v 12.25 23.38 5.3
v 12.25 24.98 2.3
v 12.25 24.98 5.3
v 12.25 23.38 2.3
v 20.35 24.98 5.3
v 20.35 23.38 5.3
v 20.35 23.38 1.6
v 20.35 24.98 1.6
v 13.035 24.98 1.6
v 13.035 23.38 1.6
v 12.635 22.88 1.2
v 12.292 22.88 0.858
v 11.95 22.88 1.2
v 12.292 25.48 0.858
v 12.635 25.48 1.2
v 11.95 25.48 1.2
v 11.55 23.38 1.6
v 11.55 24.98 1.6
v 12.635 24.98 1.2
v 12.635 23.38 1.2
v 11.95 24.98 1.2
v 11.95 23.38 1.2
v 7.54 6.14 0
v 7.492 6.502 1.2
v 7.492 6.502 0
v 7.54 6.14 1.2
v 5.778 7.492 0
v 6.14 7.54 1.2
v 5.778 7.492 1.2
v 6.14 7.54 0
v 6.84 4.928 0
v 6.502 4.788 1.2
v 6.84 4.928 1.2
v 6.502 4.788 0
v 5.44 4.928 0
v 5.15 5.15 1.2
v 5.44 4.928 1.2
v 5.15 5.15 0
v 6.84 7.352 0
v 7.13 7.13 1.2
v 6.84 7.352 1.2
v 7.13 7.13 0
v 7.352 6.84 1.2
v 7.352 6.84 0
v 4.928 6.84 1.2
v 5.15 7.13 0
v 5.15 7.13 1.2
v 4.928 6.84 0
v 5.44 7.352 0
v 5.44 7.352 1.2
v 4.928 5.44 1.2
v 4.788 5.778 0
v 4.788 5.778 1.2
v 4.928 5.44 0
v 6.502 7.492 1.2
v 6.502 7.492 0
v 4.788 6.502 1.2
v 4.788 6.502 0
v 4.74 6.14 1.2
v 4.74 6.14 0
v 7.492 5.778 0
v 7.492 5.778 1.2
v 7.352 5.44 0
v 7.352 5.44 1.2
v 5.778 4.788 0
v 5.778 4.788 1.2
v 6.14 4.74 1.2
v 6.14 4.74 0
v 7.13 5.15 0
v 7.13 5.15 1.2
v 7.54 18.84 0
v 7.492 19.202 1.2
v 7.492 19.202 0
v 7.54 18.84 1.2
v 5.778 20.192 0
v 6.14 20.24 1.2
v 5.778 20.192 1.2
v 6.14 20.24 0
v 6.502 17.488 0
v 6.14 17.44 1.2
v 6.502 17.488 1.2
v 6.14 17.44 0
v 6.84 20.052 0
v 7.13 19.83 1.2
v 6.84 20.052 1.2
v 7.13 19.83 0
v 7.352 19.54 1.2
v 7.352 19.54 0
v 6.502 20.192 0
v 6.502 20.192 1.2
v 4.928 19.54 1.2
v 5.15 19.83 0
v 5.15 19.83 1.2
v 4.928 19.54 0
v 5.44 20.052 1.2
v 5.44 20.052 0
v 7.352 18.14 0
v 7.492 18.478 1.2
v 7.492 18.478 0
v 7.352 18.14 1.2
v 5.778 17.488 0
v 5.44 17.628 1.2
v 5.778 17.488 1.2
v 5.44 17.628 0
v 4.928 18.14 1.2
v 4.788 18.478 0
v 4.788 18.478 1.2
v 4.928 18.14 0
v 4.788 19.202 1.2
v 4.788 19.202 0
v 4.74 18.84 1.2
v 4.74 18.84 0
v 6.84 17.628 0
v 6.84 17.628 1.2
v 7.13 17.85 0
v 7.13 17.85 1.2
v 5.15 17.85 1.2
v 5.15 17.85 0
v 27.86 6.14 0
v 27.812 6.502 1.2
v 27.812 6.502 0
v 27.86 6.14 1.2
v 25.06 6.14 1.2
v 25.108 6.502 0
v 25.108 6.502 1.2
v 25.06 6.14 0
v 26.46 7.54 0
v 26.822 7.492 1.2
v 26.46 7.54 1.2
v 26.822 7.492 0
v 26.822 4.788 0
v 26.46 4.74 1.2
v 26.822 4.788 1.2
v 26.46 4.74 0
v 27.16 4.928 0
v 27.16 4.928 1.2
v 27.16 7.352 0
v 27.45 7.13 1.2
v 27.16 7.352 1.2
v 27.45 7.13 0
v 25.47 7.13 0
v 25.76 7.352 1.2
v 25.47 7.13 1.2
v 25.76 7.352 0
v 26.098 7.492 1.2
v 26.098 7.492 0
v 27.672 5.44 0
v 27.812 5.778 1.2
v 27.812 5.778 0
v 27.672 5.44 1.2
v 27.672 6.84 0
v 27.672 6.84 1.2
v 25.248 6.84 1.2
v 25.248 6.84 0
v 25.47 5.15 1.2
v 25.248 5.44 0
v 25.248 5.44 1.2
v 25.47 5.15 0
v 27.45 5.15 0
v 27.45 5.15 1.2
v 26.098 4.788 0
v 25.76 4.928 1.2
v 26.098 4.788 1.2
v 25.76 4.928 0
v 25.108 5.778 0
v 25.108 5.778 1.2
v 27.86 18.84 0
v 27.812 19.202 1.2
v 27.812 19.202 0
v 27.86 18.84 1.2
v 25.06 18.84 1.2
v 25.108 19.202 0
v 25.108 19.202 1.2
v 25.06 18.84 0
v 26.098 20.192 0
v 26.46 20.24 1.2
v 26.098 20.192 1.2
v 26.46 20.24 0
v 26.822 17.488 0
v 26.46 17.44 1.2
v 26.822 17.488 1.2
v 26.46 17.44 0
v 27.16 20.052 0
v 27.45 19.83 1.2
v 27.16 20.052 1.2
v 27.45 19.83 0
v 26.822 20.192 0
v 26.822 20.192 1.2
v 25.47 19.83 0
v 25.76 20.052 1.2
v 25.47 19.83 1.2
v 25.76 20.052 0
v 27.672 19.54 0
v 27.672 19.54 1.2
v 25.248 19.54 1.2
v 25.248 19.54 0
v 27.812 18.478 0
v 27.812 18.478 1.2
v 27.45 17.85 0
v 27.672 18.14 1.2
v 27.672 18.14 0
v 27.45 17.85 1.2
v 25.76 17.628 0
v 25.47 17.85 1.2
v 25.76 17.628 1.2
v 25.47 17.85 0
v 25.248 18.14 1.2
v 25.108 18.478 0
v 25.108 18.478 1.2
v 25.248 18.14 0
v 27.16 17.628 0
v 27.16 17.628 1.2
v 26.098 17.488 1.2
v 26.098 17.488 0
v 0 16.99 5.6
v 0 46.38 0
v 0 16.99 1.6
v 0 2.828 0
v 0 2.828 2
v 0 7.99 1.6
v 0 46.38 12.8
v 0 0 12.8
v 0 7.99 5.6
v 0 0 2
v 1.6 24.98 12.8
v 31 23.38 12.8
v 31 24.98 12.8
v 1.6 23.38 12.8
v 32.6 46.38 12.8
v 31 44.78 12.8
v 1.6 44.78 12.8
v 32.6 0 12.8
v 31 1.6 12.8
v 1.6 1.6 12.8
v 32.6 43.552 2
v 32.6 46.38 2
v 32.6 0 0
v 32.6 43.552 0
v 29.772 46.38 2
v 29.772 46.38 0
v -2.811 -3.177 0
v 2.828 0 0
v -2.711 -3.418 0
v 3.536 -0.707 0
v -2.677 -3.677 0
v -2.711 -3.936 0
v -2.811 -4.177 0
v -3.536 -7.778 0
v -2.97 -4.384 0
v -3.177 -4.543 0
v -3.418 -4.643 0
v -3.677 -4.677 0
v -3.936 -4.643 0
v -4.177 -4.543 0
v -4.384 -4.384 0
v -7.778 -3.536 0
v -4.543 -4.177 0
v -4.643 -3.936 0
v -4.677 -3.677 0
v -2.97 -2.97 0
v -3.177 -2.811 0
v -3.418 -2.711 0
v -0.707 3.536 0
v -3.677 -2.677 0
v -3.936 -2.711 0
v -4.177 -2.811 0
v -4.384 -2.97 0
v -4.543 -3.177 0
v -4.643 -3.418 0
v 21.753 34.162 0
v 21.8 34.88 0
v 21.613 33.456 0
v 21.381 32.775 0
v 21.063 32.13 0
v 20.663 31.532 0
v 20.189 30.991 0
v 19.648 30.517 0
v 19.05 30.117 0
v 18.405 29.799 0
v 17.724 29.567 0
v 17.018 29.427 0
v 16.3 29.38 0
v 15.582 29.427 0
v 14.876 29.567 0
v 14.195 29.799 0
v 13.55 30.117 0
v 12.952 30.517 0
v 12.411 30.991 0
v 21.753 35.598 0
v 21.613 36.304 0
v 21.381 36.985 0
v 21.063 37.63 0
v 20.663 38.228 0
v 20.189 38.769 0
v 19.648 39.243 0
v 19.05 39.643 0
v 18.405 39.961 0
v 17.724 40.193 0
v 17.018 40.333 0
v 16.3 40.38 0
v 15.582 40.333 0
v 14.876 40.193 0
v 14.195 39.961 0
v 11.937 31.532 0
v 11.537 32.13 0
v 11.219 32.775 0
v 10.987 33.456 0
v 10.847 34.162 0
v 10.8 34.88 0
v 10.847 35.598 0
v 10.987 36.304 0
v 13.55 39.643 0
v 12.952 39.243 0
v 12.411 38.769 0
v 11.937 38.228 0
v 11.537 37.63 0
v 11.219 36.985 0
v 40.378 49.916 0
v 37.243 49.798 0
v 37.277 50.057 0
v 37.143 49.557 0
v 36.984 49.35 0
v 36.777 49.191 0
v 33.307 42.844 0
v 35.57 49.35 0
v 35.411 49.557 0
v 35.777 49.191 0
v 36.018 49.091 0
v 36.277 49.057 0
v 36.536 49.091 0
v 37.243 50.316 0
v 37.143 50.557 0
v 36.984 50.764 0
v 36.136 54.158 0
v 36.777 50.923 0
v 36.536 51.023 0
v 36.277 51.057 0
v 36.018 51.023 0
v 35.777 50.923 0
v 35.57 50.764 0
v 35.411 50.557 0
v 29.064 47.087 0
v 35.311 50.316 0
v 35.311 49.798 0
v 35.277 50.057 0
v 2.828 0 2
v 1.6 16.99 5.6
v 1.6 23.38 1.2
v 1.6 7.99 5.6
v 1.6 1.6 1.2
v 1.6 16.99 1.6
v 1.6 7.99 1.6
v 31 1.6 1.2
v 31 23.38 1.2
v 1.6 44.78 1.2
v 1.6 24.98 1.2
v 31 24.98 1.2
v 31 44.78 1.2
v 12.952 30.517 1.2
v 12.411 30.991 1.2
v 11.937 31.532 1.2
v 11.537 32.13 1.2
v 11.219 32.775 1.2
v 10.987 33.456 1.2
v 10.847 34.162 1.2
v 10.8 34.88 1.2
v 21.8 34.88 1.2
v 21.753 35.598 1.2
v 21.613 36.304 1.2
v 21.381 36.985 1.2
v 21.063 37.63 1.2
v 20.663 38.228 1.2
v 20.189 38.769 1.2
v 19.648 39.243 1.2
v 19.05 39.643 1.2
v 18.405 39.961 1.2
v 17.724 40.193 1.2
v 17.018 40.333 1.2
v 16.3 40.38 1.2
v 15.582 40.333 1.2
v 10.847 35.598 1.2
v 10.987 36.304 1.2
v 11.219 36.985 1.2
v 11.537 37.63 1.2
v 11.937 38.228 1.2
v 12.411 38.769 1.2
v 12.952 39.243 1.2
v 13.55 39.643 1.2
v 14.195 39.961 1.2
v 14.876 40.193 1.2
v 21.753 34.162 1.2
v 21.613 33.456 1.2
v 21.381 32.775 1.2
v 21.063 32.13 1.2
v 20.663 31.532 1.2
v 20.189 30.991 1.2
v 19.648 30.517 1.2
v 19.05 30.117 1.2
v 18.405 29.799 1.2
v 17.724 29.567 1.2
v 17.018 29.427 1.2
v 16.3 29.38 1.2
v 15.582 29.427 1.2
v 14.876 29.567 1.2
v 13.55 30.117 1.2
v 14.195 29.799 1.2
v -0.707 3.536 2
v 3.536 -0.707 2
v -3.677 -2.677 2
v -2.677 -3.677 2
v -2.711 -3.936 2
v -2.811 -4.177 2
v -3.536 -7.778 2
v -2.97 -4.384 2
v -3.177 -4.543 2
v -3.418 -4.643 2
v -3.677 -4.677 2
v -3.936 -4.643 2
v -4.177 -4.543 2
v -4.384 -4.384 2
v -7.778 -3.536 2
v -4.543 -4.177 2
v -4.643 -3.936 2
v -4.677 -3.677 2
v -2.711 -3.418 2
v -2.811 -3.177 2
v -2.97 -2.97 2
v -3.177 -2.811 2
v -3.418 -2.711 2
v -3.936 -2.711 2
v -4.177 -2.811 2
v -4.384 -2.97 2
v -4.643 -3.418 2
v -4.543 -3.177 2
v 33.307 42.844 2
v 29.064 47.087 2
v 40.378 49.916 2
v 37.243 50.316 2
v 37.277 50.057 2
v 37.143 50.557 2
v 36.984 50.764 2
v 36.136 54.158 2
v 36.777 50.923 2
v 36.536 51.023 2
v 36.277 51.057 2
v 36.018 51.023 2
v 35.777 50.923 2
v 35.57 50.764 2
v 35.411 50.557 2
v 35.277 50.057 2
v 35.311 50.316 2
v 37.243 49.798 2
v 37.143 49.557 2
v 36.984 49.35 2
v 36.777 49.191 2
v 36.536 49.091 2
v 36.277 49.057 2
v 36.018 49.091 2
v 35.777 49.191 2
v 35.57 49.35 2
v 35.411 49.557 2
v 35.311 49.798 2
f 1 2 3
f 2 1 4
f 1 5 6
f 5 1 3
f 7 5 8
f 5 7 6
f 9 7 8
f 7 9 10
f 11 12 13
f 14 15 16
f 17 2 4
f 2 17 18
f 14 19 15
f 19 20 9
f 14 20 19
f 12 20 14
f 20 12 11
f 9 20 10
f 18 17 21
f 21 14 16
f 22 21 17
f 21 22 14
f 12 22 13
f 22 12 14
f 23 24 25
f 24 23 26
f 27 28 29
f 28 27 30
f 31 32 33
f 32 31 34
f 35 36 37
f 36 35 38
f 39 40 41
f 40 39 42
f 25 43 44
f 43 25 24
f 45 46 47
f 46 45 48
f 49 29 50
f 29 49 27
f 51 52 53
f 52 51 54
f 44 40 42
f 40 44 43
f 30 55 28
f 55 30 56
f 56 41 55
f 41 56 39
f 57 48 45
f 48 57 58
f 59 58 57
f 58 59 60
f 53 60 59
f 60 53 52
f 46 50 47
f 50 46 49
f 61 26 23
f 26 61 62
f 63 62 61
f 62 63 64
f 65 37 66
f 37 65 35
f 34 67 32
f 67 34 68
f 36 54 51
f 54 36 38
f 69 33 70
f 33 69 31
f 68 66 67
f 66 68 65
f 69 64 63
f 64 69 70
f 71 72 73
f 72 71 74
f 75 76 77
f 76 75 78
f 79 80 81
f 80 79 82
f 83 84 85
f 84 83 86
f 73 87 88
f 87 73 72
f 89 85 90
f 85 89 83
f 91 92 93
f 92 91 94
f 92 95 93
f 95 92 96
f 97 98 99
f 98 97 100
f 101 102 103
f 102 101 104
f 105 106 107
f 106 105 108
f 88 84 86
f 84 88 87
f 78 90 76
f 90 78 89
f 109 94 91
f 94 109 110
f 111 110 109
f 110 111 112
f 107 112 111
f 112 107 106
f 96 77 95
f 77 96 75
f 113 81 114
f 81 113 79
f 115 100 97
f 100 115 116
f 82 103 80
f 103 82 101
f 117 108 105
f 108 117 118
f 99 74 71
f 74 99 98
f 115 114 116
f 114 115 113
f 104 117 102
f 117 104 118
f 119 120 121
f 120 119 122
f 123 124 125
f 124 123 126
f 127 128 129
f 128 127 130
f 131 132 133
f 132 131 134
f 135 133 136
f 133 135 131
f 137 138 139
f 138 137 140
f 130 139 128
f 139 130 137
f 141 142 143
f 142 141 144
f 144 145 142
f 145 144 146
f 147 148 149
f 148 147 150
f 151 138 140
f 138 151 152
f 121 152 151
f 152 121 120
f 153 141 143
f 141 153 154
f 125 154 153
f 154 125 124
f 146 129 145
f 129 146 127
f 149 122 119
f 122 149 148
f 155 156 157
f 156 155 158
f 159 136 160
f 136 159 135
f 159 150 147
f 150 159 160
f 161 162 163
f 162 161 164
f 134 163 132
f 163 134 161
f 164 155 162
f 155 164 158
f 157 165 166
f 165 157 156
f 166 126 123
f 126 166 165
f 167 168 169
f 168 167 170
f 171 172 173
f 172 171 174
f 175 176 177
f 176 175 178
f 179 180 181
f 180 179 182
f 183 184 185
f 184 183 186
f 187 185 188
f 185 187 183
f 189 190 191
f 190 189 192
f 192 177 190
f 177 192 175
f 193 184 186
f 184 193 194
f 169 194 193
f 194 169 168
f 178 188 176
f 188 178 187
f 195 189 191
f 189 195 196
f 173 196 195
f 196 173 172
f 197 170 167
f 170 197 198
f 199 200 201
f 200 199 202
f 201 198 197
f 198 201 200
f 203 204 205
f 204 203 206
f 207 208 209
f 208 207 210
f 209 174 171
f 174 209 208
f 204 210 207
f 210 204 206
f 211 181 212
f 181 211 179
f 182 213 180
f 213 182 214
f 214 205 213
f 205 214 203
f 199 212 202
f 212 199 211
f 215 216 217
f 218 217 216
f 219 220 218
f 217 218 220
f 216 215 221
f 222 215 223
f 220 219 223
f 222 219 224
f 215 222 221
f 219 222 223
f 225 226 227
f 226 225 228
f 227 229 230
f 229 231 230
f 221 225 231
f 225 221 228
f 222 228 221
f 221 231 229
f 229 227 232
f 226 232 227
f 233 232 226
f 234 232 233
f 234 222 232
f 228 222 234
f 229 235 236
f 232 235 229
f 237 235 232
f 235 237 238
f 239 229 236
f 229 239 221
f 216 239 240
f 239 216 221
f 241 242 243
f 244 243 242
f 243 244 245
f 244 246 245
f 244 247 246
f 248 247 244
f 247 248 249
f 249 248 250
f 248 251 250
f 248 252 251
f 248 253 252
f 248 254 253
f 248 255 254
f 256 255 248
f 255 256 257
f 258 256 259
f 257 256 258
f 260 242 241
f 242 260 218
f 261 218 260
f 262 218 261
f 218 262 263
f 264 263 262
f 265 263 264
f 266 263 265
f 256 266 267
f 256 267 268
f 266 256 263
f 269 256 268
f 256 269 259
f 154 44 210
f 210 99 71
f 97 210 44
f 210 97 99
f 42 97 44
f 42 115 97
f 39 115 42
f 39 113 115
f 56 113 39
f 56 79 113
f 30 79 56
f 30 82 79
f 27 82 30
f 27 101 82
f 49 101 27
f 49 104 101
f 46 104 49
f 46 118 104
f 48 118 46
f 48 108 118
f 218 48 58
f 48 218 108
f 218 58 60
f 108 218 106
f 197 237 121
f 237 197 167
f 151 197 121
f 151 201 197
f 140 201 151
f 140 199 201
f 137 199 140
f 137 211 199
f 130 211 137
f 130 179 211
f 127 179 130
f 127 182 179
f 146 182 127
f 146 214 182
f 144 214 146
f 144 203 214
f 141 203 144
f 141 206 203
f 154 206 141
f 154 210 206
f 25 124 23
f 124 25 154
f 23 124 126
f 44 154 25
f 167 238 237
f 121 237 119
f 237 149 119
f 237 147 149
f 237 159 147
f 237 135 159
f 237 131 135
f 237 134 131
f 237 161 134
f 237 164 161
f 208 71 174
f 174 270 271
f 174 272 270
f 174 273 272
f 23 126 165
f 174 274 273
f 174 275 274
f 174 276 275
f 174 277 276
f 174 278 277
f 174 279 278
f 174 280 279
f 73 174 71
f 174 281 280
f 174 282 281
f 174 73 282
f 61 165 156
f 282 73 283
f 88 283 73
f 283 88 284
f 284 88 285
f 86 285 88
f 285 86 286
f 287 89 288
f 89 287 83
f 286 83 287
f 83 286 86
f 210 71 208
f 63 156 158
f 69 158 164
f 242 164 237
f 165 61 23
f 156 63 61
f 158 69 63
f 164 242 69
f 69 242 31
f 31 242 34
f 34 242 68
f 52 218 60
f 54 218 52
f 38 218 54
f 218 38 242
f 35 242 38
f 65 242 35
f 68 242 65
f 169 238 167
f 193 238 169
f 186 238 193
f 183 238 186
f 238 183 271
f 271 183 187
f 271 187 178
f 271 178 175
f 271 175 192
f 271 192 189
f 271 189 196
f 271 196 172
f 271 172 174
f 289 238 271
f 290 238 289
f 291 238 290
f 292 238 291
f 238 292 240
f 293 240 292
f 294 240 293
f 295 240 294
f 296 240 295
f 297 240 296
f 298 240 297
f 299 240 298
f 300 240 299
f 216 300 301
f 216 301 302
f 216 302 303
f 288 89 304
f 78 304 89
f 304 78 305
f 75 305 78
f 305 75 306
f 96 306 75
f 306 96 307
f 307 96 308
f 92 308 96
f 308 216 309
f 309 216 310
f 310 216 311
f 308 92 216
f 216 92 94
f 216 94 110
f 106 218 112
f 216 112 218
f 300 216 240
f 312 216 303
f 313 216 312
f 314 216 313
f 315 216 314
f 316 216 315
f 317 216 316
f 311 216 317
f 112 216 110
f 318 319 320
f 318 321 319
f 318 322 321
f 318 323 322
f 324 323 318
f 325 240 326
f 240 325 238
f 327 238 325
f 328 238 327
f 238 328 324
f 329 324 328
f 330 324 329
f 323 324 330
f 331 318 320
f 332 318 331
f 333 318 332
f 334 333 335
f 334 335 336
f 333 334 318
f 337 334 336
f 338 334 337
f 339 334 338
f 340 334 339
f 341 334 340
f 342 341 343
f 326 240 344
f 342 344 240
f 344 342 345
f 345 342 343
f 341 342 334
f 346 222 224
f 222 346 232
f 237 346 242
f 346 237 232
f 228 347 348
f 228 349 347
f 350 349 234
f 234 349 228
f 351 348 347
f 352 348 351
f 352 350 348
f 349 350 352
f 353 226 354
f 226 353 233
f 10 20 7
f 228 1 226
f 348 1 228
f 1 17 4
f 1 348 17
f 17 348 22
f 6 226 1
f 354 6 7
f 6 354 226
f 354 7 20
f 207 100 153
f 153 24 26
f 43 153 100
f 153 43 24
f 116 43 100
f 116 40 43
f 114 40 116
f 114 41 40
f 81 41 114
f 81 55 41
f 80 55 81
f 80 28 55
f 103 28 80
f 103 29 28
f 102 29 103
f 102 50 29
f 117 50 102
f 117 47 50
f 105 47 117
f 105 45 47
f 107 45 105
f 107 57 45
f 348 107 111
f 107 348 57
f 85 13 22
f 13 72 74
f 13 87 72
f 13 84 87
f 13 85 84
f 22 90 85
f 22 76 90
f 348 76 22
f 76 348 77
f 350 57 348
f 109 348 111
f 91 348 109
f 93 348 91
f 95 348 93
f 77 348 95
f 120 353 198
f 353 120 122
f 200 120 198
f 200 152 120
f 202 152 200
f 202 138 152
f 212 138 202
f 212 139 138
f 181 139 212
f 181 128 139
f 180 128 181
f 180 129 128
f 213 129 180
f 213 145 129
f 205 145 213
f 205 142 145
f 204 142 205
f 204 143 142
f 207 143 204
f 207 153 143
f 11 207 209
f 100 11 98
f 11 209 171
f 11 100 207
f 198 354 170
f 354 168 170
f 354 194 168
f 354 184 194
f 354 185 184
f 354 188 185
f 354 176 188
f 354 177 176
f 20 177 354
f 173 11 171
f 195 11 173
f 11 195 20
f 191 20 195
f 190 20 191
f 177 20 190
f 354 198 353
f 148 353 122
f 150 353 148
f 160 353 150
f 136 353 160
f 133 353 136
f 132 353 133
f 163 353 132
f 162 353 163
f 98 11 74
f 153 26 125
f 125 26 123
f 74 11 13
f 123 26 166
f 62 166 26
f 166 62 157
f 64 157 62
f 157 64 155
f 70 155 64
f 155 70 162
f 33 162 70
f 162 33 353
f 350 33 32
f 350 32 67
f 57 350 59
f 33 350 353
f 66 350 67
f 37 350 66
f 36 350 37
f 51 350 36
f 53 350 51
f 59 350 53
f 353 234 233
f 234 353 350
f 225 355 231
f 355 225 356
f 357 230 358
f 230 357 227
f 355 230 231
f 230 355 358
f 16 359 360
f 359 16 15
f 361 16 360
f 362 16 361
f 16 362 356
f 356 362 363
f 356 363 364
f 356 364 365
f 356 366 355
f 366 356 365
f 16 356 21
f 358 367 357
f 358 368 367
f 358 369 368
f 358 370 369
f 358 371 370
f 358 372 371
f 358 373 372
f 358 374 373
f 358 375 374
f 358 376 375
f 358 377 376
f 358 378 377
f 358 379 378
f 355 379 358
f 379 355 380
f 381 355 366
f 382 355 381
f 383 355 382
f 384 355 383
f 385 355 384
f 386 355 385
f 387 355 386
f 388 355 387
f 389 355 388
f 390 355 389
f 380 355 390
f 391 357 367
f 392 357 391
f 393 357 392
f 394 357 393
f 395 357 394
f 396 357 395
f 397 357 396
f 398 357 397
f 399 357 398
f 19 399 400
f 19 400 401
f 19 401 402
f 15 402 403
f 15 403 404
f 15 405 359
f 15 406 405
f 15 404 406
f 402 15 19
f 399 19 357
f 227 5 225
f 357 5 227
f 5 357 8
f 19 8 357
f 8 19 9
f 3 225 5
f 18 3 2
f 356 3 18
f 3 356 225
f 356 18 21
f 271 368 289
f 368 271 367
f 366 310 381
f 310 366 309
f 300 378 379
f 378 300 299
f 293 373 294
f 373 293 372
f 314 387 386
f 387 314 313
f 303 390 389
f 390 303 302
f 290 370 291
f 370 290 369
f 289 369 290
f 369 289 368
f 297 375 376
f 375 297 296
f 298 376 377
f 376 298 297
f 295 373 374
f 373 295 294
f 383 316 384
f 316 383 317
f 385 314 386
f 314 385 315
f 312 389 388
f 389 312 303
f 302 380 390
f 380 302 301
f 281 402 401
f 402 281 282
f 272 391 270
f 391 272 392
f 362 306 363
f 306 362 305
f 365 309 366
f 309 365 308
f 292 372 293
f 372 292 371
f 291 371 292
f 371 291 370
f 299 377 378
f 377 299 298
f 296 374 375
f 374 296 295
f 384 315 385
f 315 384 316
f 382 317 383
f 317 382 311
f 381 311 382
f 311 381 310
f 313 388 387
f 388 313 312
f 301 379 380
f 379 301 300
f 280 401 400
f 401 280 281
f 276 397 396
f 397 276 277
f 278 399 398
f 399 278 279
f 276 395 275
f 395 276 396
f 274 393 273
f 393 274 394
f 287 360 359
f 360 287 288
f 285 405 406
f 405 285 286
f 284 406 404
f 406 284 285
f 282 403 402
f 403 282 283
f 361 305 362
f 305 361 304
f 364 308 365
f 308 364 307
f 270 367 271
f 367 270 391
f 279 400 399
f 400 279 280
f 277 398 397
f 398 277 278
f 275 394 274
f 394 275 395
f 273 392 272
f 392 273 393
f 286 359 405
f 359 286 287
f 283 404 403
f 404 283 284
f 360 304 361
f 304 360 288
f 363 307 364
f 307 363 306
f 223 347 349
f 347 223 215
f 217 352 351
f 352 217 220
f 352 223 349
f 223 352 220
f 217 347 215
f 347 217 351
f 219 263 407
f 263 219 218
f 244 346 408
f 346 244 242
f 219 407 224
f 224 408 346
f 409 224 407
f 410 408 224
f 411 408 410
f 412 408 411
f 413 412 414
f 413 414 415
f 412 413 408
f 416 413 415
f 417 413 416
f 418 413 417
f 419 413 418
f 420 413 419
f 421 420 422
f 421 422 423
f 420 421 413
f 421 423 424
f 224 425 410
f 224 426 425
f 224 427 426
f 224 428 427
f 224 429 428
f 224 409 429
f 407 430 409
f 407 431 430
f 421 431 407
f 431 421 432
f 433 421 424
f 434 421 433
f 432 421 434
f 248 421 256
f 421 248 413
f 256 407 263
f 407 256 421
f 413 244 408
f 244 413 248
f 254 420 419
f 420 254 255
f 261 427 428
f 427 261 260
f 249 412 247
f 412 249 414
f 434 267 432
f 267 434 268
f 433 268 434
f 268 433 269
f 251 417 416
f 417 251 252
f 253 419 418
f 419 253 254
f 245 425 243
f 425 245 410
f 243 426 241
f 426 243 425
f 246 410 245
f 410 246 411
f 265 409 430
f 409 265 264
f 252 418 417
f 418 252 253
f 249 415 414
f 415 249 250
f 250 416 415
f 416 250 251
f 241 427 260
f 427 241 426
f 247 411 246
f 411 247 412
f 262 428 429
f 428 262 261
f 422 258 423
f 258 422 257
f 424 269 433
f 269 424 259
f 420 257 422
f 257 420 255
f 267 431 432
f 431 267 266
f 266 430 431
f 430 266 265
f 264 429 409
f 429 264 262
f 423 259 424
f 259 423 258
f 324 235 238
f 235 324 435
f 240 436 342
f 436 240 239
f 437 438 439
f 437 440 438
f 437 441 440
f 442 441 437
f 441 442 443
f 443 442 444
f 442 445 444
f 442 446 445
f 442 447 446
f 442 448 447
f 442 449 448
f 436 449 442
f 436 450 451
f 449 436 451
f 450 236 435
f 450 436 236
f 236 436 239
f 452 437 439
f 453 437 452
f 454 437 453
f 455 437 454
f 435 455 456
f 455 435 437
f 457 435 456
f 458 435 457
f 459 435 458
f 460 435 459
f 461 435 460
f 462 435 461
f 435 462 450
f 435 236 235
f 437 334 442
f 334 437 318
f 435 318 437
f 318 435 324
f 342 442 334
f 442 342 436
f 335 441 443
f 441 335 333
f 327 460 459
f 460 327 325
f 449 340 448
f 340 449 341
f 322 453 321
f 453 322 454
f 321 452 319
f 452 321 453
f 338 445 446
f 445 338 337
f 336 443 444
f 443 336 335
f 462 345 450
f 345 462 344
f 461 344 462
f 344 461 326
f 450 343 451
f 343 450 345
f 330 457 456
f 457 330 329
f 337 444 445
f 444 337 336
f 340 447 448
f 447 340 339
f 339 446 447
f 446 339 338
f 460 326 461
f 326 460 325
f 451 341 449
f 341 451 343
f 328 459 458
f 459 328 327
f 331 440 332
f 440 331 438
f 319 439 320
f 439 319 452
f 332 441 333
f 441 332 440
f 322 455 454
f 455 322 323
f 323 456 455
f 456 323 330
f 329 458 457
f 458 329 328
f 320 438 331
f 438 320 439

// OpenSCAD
// ============================================================
//  Meridian Wrist Array — Satellite Pod v2
//  Rebuilt Aug 2026 | Sean (Whitehorse, YT)
//
//  ** REBUILD NOTICE **
//  The original satellite_pod_v2.scad could not be found on disk.
//  This file was reconstructed from two sources:
//    1. Authored parameter/geometry fragments recovered from past
//       conversation transcripts (marked CONFIRMED below).
//    2. Direct measurement of satellite_pod_v2_side.stl, which you
//       still had. Two values were back-solved from that mesh and
//       are marked DERIVED — trustworthy as dimensions, but the
//       original formulas that produced them are not recovered.
//    3. A few features (screw boss exact placement, lid rim) had no
//       surviving source text at all and are marked REBUILT — these
//       are reasonable reconstructions, not verified originals.
//       Cross-check against your physical prints before reprinting
//       a batch on these.
//
//  Rendered POD_L and POD_H below reproduce the uploaded STL's
//  bounding box exactly (33.2 x 46.6 x 12.8mm) — see the print
//  at the bottom of this file for the live check.
//
//  v2 change (CONFIRMED, from source): LRA pocket placement is a
//  parameter.
//    LRA_SIDE = "end"   -> v1 layout, pocket beyond the chamber's
//                          far end: [ DRV ][ div ][ LRA ]
//    LRA_SIDE = "side"  -> pocket alongside the chamber's long
//                          wall (pod gets wider, shorter):
//                              [ DRV chamber ]
//                              [   divider   ]
//                              [ LRA pocket  ]
//    LRA_X_FRAC slides the LRA along the chamber length in side
//    mode, 0.0 = cable-hole end, 1.0 = far end. NOT recovered from
//    source — set to 0.5 as a placeholder. Re-tune by dry-fitting
//    your DRV board and aligning to its OUT+/OUT- pads before
//    trusting this value.
//
//  NEW in this rebuild: LRA_CONN geometry. A notch through the
//  divider wall sized to the in-line connector on your LRA lead
//  (measured 6.90 x 3.20 x 2.20mm), positioned low near the floor
//  so it stays clear of the lid parting line rather than needing
//  a lid-side channel.
// ============================================================

// ---- Pod variant switch (CONFIRMED) ----
BOARD_TYPE = "drv_lra"; // "drv_lra" or "mux" -- this STL was drv_lra (verified: CHAMBER_L math reproduces measured 33.2mm exactly only with DRV_L, not MUX_L)
LRA_SIDE   = "side";    // "end" or "side"
LRA_X_FRAC = 0.5;       // REBUILT placeholder -- re-tune by dry fit, see note above

// ---- Component dimensions ----
// DRV_L/DRV_W updated to Adafruit's official fab print (1.00" x 0.70"),
// pulled directly from their published downloads page -- this replaces
// the earlier 26x18 rounded estimate.
DRV_L = 25.4;   // Adafruit DRV2605L STEMMA QT board length
DRV_W = 17.78;  // board width
// Mounting hole pattern, same source: 4 holes, 0.80" x 0.50" spacing,
// inset 0.10" (2.54mm) from every edge -- symmetric on all 4 corners.
DRV_HOLE_INSET = 2.54;
MUX_L = 31;    // TCA9548A breakout length -- Sean measured
MUX_W = 17.71; // TCA9548A breakout width -- Sean measured
BOARD_CLR = 2; // clearance added around the board, each side

LRA_D = 10;    // LRA diameter (coin-type)
LRA_T = 4;     // LRA thickness
LRA_SKIN_GAP = 1.0; // skin-contact opening = LRA_D + this

HAS_POCKET = (BOARD_TYPE == "drv_lra");
BOARD_L = (BOARD_TYPE == "mux") ? MUX_L : DRV_L;
BOARD_W = (BOARD_TYPE == "mux") ? MUX_W : DRV_W;

// ---- Wall/floor/lid thicknesses (CONFIRMED) ----
WALL  = 1.6;
FLOOR = 1.2;
LID_T = 1.6;
DIVIDER_T = WALL;

// ---- Derived chamber sizes (CONFIRMED formula, CHAMBER_H confirmed) ----
CHAMBER_L = BOARD_L + BOARD_CLR*2;
CHAMBER_W = BOARD_W + BOARD_CLR*2;
CHAMBER_H = 10; // matches puck's rev-4.5 DRV clearance convention; check vs your actual board+header stack

// ---- Pocket sizing (DERIVED from STL -- formula not recovered) ----
POCKET_SPAN = 19.8; // back-solved from measured pod Y=46.6mm; treat as a known-good
                     // number for THIS pod, not a formula to trust for other boards
POCKET_H = CHAMBER_H;

// ---- NEW: LRA connector channel through the divider ----
// Measured connector body: 6.90(L) x 3.20(W) x 2.20(H)mm
CONN_L = 6.90;
CONN_W = 3.20;
CONN_H = 2.20;
CONN_CLR_W = 0.7;   // total width clearance (per side ~0.35, PETG print tolerance)
CONN_CLR_H = 1.5;   // total height clearance -- bumped +1mm from 0.5 per print fit test (was too short)
CHANNEL_W = CONN_L + 1.2;      // 9-10mm target: length axis of connector runs along the channel
CHANNEL_H = CONN_H + CONN_CLR_H; // 3.7mm -- fits within DIVIDER_T's adjacent floor zone
CHANNEL_MOUTH_CHAMFER = 0.7;   // chamfer at each channel mouth so the wire jacket doesn't bite on a sharp edge

// Position: aligned with LRA_X_FRAC by default so the channel sits
// right next to wherever the LRA pocket actually lands. Override
// with CHANNEL_X_FRAC if your DRV board's OUT+/OUT- pads are
// somewhere else along the chamber.
CHANNEL_X_FRAC = LRA_X_FRAC;
CHANNEL_X = WALL + (CHAMBER_L - CHANNEL_W) * CHANNEL_X_FRAC;
CHANNEL_Z = FLOOR + 0.4; // low, near the floor -- clear of the lid regardless of LID_T

// ---- NEW: cable exit channel through the outer wall ----
// The STEMMA pigtail currently just drapes over the wall's top edge --
// this cuts a proper low channel so the lid can close flat over it,
// same approach as the divider channel above.
// Moved to the x=0 end wall per Sean -- that's the actual STEMMA port
// edge on the DRV board, not the long front wall I guessed originally.
// Conveniently this is also the "cable-hole end" already named in the
// LRA_X_FRAC comment (0.0 = cable-hole end), so the two now agree.
//
// PLACEHOLDER -- sized generously (JST-SH female housings run roughly
// 6-8mm x 3-4mm from general knowledge of the part, not a measurement
// of yours specifically). Measure your actual housing + cable bundle
// and tighten this before printing a batch -- same as the LRA
// connector channel, this is exactly the kind of number worth getting
// from calipers rather than an estimate.
CABLE_CHANNEL_W = 9.0;  // along the wall (now Y axis, since it's the end wall)
CABLE_CHANNEL_H = 4.0;  // channel height
CABLE_CHANNEL_Y_FRAC = 0.5; // centered along the chamber width

// ---- Pod outer envelope ----
POD_L = WALL + CHAMBER_L + WALL; // side mode: length axis is just the chamber, unchanged from v1
POD_W = HAS_POCKET && LRA_SIDE == "side"
    ? (WALL + CHAMBER_W + DIVIDER_T + POCKET_SPAN + WALL)
    : (CHAMBER_W + WALL*2);
POD_H = FLOOR + CHAMBER_H + LID_T;

// ---- NEW: stitch tabs for sewing the pod to a non-stretch rail ----
// No surviving source for these -- fresh design. Two tabs at diagonal
// corners (same convention as the screw bosses below), each a flat
// wing in the floor plane with a through-hole for waxed thread/floss.
// Bump TAB_HOLE_D if you're using something chunkier like paracord.
TAB_W = 8.0;       // tab length, projecting out from the corner
TAB_D = 6.0;       // tab width, perpendicular to projection
TAB_T = 2.0;       // tab thickness -- slightly thicker than FLOOR alone for stitch durability
TAB_HOLE_D = 2.0;  // through-hole diameter
TAB_HOLE_FRAC = 0.65; // hole position along the tab length, clear of the wall root
TAB_OVERLAP = 2.0; // tab extends this far INTO the shell wall so the union is a real
                    // solid merge, not just two solids touching along one edge

module stitch_tab(corner_x, corner_y, angle_deg) {
    translate([corner_x, corner_y, 0])
        rotate([0, 0, angle_deg])
            difference() {
                translate([-TAB_OVERLAP, -TAB_D/2, 0])
                    cube([TAB_W + TAB_OVERLAP, TAB_D, TAB_T]);
                translate([TAB_W * TAB_HOLE_FRAC, 0, -0.5])
                    cylinder(d=TAB_HOLE_D, h=TAB_T + 1, $fn=24);
            }
}

module stitch_tabs() {
    stitch_tab(0, 0, 225);         // near corner, points away into -x,-y
    stitch_tab(POD_L, POD_W, 45);  // far corner, points away into +x,+y
}

// ---- Board mounting: 4 holes at the real Adafruit hole pattern,
//      sized for off-the-shelf brass standoffs rather than printed
//      self-tapped threads -- printed plastic threads don't hold up
//      to repeated rebuild cycles the way a metal standoff does.
//
//      Geometry: a screw passes up through the floor from outside
//      the pod into the standoff's bottom thread; the board's own
//      screw threads into the standoff's top. The pod only needs a
//      clearance hole in the floor at each of the 4 positions, no
//      printed boss required.
//
//      PLACEHOLDER -- I don't have your standoff's actual thread
//      size. STANDOFF_SCREW_CLR below assumes M2.5 clearance as a
//      reasonable starting guess. Measure the screw shaft OD (not
//      the hex body) and adjust before printing a batch.
STANDOFF_SCREW_CLR = 2.8; // floor clearance hole diameter for the mounting screw

// hole centers, in chamber-local coordinates (board sits BOARD_CLR
// inside the chamber wall, holes are DRV_HOLE_INSET inside the board edge)
BOSS_INSET = BOARD_CLR + DRV_HOLE_INSET; // = 4.54mm, same for both axes given the symmetric spec

module mount_holes() {
    for (mx = [BOSS_INSET, CHAMBER_L - BOSS_INSET])
        for (my = [BOSS_INSET, CHAMBER_W - BOSS_INSET])
            translate([WALL + mx, WALL + my, -0.5])
                cylinder(d=STANDOFF_SCREW_CLR, h=FLOOR + 1, $fn=24);
}

module pod_body() {
    difference() {
        // outer shell
        cube([POD_L, POD_W, POD_H]);

        // main chamber void -- open-top tray (through-cut fix from the
        // July 28 session: +LID_T so no membrane seals the top)
        translate([WALL, WALL, FLOOR])
            cube([CHAMBER_L, CHAMBER_W, CHAMBER_H + LID_T + 1]);

        // LRA pocket void
        if (HAS_POCKET) {
            if (LRA_SIDE == "side") {
                translate([WALL, WALL + CHAMBER_W + DIVIDER_T, FLOOR])
                    cube([CHAMBER_L, POCKET_SPAN, POCKET_H + LID_T + 1]);
            } else {
                translate([WALL + CHAMBER_L + DIVIDER_T, WALL, FLOOR])
                    cube([POCKET_SPAN, CHAMBER_W, POCKET_H + LID_T + 1]);
            }
        }

        // LRA skin window -- through the floor, centered in the pocket
        // at LRA_X_FRAC along the chamber length
        if (HAS_POCKET) {
            lra_cx = WALL + CHAMBER_L * LRA_X_FRAC;
            lra_cy = WALL + CHAMBER_W + DIVIDER_T + POCKET_SPAN/2;
            translate([lra_cx, lra_cy, -0.5])
                cylinder(d=LRA_D + LRA_SKIN_GAP, h=FLOOR+1, $fn=48);
        }

        // NEW: connector channel through the divider, low near the floor
        if (HAS_POCKET && LRA_SIDE == "side") {
            translate([CHANNEL_X, WALL + CHAMBER_W - 0.5, CHANNEL_Z])
                cube([CHANNEL_W, DIVIDER_T + 1, CHANNEL_H]);
            // chamfer both mouths so the wire/connector doesn't ride a sharp edge
            translate([CHANNEL_X - CHANNEL_MOUTH_CHAMFER, WALL + CHAMBER_W - 0.5, CHANNEL_Z])
                rotate([0,45,0])
                    cube([CHANNEL_MOUTH_CHAMFER*1.5, DIVIDER_T + 1, CHANNEL_H]);
        }

        // cable exit channel -- low through the end wall (x=0), same
        // logic as the divider channel: keep it near the floor so the
        // lid parting line stays clear
        cable_cy = WALL + (CHAMBER_W - CABLE_CHANNEL_W) * CABLE_CHANNEL_Y_FRAC;
        translate([-0.5, cable_cy, FLOOR + 0.4])
            cube([WALL + 1, CABLE_CHANNEL_W, CABLE_CHANNEL_H]);

        // 4 floor clearance holes for standoff mounting screws
        mount_holes();
    }

    // stitch tabs for rail attachment
    stitch_tabs();
}

module pod_lid() {
    // REBUILT -- lid footprint measured off the uploaded STL
    // (33.2 x 42.8 x 1.6mm), inset from the outer wall
    lid_w = POD_W - 3.8; // matches measured lid Y vs body Y difference
    translate([0, 1.9, 0])
        cube([POD_L, lid_w, LID_T]);
}

RENDER = "body"; // "body" | "lid" | "preview"

if (RENDER == "body") pod_body();
else if (RENDER == "lid") pod_lid();
else {
    color("SteelBlue") pod_body();
    color([0.6,0.6,0.9,0.4]) translate([0,0,POD_H - LID_T]) pod_lid();
}

echo("POD_L =", POD_L, " POD_W =", POD_W, " POD_H =", POD_H);
